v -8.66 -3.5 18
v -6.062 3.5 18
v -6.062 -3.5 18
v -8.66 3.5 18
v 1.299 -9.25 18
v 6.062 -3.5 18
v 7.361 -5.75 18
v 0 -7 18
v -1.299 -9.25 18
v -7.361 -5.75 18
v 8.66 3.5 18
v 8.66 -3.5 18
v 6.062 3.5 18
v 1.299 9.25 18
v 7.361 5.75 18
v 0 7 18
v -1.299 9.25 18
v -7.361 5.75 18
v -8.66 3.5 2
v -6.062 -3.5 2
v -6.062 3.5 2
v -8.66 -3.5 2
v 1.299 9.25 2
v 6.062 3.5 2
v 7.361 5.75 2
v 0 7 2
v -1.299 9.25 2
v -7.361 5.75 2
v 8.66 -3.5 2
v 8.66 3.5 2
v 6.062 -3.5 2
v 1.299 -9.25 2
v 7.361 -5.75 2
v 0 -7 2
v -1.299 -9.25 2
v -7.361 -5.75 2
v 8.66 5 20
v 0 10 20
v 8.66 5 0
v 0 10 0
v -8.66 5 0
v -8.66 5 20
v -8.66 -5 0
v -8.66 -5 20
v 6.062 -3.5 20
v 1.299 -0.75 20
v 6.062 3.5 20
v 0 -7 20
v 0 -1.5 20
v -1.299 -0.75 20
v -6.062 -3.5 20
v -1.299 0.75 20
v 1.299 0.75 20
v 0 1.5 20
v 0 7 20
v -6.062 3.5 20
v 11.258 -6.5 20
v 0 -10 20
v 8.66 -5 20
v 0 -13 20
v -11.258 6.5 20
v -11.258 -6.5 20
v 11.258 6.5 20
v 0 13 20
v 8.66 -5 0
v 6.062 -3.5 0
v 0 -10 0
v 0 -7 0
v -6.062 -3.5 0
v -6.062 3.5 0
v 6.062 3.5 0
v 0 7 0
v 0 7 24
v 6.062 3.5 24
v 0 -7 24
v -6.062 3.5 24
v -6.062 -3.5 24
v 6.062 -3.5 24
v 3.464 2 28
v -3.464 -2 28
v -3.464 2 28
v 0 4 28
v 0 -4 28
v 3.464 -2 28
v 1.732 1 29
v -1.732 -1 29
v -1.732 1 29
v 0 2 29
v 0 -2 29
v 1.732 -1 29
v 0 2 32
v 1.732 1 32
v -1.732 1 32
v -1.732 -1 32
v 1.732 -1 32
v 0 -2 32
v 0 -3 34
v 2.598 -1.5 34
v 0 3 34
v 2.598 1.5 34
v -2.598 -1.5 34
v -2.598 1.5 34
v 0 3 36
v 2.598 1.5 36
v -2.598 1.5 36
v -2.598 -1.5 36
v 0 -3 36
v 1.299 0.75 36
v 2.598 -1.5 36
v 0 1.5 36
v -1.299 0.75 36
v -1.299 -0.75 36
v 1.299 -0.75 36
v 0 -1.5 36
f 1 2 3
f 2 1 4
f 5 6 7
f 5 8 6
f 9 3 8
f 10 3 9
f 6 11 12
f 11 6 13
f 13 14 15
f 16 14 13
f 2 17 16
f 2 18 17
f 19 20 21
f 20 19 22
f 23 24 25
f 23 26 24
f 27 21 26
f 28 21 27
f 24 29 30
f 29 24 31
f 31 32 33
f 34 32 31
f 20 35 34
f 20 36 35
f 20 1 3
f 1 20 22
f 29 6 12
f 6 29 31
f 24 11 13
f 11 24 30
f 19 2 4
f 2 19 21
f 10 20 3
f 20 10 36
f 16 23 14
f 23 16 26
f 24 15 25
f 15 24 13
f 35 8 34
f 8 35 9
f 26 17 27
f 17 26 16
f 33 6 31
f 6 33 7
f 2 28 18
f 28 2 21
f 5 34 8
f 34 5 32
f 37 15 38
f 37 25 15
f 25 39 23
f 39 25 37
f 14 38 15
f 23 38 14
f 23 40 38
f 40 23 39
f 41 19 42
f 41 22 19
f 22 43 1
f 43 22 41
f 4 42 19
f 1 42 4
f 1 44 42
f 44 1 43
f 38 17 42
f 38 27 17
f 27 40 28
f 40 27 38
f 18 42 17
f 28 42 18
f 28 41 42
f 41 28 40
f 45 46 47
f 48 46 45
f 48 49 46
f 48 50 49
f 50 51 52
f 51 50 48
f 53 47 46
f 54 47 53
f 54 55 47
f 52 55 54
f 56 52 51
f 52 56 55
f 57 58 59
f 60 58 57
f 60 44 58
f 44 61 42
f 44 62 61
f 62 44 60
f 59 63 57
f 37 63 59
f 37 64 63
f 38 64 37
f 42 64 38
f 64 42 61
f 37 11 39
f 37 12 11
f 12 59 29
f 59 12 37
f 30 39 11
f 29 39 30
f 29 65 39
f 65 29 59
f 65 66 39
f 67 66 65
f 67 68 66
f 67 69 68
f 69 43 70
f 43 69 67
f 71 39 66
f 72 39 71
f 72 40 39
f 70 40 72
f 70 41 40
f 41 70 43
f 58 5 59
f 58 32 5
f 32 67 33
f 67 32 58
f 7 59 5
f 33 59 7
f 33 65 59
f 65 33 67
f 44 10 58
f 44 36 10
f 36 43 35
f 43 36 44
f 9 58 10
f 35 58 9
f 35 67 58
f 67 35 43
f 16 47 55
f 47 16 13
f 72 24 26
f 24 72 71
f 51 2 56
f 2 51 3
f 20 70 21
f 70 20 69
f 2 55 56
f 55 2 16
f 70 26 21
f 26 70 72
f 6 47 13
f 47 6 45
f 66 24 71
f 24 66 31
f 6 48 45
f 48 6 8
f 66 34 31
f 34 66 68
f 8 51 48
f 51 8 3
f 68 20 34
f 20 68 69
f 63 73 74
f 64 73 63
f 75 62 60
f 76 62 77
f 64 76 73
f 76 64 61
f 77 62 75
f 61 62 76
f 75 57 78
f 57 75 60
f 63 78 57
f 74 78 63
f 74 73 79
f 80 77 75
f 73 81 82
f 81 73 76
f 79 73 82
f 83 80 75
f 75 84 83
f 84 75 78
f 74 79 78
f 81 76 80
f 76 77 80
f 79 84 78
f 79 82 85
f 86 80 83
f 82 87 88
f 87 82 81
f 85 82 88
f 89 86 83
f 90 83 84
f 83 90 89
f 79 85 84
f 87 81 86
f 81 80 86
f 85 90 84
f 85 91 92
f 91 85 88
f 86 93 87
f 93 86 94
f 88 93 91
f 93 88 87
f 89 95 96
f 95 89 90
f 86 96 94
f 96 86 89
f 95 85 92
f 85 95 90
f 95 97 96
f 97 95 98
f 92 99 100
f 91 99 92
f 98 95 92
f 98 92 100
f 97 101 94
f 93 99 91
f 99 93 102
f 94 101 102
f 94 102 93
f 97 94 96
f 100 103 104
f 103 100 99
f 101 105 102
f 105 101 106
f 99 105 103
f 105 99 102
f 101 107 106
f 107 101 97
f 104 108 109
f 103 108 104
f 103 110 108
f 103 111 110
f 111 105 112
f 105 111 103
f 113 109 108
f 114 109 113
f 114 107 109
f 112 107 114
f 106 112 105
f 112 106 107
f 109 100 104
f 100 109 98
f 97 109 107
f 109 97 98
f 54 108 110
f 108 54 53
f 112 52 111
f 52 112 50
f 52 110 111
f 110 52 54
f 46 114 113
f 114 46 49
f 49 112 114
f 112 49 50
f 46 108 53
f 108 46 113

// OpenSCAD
difference(){
    rotate([0,0,30]){
        cylinder(r=10, h=20, $fn=6);
    }
    rotate([0,0,30]){
        translate([0,0,-0.5]){
            cylinder(r=7, h=21, $fn=6);
        }
    }
    for(i=[0:1:2]){
        translate([0,0,10]){
            rotate([0,0,i*60]){
                cube([20,7,16], true);
            }
        }
    }
}
difference(){
    rotate([0,0,30]){
     translate([0,0,20]){
        cylinder(4,13,7,$fn=6);
     }
     translate([0,0,24]){
        cylinder(4,7,4,$fn=6);
     }
     translate([0,0,28]){
        cylinder(1,4,2,$fn=6);
     }
     translate([0,0,29]){
        cylinder(3,2,2,$fn=6);
     }
      translate([0,0,32]){
        cylinder(2,2,3,$fn=6);
     }
       translate([0,0,34]){
        cylinder(2,3,3,$fn=6);
     }
    }
    rotate([0,0,30]){
        cylinder(r=1.5, h=38, $fn=6);
    }
}
